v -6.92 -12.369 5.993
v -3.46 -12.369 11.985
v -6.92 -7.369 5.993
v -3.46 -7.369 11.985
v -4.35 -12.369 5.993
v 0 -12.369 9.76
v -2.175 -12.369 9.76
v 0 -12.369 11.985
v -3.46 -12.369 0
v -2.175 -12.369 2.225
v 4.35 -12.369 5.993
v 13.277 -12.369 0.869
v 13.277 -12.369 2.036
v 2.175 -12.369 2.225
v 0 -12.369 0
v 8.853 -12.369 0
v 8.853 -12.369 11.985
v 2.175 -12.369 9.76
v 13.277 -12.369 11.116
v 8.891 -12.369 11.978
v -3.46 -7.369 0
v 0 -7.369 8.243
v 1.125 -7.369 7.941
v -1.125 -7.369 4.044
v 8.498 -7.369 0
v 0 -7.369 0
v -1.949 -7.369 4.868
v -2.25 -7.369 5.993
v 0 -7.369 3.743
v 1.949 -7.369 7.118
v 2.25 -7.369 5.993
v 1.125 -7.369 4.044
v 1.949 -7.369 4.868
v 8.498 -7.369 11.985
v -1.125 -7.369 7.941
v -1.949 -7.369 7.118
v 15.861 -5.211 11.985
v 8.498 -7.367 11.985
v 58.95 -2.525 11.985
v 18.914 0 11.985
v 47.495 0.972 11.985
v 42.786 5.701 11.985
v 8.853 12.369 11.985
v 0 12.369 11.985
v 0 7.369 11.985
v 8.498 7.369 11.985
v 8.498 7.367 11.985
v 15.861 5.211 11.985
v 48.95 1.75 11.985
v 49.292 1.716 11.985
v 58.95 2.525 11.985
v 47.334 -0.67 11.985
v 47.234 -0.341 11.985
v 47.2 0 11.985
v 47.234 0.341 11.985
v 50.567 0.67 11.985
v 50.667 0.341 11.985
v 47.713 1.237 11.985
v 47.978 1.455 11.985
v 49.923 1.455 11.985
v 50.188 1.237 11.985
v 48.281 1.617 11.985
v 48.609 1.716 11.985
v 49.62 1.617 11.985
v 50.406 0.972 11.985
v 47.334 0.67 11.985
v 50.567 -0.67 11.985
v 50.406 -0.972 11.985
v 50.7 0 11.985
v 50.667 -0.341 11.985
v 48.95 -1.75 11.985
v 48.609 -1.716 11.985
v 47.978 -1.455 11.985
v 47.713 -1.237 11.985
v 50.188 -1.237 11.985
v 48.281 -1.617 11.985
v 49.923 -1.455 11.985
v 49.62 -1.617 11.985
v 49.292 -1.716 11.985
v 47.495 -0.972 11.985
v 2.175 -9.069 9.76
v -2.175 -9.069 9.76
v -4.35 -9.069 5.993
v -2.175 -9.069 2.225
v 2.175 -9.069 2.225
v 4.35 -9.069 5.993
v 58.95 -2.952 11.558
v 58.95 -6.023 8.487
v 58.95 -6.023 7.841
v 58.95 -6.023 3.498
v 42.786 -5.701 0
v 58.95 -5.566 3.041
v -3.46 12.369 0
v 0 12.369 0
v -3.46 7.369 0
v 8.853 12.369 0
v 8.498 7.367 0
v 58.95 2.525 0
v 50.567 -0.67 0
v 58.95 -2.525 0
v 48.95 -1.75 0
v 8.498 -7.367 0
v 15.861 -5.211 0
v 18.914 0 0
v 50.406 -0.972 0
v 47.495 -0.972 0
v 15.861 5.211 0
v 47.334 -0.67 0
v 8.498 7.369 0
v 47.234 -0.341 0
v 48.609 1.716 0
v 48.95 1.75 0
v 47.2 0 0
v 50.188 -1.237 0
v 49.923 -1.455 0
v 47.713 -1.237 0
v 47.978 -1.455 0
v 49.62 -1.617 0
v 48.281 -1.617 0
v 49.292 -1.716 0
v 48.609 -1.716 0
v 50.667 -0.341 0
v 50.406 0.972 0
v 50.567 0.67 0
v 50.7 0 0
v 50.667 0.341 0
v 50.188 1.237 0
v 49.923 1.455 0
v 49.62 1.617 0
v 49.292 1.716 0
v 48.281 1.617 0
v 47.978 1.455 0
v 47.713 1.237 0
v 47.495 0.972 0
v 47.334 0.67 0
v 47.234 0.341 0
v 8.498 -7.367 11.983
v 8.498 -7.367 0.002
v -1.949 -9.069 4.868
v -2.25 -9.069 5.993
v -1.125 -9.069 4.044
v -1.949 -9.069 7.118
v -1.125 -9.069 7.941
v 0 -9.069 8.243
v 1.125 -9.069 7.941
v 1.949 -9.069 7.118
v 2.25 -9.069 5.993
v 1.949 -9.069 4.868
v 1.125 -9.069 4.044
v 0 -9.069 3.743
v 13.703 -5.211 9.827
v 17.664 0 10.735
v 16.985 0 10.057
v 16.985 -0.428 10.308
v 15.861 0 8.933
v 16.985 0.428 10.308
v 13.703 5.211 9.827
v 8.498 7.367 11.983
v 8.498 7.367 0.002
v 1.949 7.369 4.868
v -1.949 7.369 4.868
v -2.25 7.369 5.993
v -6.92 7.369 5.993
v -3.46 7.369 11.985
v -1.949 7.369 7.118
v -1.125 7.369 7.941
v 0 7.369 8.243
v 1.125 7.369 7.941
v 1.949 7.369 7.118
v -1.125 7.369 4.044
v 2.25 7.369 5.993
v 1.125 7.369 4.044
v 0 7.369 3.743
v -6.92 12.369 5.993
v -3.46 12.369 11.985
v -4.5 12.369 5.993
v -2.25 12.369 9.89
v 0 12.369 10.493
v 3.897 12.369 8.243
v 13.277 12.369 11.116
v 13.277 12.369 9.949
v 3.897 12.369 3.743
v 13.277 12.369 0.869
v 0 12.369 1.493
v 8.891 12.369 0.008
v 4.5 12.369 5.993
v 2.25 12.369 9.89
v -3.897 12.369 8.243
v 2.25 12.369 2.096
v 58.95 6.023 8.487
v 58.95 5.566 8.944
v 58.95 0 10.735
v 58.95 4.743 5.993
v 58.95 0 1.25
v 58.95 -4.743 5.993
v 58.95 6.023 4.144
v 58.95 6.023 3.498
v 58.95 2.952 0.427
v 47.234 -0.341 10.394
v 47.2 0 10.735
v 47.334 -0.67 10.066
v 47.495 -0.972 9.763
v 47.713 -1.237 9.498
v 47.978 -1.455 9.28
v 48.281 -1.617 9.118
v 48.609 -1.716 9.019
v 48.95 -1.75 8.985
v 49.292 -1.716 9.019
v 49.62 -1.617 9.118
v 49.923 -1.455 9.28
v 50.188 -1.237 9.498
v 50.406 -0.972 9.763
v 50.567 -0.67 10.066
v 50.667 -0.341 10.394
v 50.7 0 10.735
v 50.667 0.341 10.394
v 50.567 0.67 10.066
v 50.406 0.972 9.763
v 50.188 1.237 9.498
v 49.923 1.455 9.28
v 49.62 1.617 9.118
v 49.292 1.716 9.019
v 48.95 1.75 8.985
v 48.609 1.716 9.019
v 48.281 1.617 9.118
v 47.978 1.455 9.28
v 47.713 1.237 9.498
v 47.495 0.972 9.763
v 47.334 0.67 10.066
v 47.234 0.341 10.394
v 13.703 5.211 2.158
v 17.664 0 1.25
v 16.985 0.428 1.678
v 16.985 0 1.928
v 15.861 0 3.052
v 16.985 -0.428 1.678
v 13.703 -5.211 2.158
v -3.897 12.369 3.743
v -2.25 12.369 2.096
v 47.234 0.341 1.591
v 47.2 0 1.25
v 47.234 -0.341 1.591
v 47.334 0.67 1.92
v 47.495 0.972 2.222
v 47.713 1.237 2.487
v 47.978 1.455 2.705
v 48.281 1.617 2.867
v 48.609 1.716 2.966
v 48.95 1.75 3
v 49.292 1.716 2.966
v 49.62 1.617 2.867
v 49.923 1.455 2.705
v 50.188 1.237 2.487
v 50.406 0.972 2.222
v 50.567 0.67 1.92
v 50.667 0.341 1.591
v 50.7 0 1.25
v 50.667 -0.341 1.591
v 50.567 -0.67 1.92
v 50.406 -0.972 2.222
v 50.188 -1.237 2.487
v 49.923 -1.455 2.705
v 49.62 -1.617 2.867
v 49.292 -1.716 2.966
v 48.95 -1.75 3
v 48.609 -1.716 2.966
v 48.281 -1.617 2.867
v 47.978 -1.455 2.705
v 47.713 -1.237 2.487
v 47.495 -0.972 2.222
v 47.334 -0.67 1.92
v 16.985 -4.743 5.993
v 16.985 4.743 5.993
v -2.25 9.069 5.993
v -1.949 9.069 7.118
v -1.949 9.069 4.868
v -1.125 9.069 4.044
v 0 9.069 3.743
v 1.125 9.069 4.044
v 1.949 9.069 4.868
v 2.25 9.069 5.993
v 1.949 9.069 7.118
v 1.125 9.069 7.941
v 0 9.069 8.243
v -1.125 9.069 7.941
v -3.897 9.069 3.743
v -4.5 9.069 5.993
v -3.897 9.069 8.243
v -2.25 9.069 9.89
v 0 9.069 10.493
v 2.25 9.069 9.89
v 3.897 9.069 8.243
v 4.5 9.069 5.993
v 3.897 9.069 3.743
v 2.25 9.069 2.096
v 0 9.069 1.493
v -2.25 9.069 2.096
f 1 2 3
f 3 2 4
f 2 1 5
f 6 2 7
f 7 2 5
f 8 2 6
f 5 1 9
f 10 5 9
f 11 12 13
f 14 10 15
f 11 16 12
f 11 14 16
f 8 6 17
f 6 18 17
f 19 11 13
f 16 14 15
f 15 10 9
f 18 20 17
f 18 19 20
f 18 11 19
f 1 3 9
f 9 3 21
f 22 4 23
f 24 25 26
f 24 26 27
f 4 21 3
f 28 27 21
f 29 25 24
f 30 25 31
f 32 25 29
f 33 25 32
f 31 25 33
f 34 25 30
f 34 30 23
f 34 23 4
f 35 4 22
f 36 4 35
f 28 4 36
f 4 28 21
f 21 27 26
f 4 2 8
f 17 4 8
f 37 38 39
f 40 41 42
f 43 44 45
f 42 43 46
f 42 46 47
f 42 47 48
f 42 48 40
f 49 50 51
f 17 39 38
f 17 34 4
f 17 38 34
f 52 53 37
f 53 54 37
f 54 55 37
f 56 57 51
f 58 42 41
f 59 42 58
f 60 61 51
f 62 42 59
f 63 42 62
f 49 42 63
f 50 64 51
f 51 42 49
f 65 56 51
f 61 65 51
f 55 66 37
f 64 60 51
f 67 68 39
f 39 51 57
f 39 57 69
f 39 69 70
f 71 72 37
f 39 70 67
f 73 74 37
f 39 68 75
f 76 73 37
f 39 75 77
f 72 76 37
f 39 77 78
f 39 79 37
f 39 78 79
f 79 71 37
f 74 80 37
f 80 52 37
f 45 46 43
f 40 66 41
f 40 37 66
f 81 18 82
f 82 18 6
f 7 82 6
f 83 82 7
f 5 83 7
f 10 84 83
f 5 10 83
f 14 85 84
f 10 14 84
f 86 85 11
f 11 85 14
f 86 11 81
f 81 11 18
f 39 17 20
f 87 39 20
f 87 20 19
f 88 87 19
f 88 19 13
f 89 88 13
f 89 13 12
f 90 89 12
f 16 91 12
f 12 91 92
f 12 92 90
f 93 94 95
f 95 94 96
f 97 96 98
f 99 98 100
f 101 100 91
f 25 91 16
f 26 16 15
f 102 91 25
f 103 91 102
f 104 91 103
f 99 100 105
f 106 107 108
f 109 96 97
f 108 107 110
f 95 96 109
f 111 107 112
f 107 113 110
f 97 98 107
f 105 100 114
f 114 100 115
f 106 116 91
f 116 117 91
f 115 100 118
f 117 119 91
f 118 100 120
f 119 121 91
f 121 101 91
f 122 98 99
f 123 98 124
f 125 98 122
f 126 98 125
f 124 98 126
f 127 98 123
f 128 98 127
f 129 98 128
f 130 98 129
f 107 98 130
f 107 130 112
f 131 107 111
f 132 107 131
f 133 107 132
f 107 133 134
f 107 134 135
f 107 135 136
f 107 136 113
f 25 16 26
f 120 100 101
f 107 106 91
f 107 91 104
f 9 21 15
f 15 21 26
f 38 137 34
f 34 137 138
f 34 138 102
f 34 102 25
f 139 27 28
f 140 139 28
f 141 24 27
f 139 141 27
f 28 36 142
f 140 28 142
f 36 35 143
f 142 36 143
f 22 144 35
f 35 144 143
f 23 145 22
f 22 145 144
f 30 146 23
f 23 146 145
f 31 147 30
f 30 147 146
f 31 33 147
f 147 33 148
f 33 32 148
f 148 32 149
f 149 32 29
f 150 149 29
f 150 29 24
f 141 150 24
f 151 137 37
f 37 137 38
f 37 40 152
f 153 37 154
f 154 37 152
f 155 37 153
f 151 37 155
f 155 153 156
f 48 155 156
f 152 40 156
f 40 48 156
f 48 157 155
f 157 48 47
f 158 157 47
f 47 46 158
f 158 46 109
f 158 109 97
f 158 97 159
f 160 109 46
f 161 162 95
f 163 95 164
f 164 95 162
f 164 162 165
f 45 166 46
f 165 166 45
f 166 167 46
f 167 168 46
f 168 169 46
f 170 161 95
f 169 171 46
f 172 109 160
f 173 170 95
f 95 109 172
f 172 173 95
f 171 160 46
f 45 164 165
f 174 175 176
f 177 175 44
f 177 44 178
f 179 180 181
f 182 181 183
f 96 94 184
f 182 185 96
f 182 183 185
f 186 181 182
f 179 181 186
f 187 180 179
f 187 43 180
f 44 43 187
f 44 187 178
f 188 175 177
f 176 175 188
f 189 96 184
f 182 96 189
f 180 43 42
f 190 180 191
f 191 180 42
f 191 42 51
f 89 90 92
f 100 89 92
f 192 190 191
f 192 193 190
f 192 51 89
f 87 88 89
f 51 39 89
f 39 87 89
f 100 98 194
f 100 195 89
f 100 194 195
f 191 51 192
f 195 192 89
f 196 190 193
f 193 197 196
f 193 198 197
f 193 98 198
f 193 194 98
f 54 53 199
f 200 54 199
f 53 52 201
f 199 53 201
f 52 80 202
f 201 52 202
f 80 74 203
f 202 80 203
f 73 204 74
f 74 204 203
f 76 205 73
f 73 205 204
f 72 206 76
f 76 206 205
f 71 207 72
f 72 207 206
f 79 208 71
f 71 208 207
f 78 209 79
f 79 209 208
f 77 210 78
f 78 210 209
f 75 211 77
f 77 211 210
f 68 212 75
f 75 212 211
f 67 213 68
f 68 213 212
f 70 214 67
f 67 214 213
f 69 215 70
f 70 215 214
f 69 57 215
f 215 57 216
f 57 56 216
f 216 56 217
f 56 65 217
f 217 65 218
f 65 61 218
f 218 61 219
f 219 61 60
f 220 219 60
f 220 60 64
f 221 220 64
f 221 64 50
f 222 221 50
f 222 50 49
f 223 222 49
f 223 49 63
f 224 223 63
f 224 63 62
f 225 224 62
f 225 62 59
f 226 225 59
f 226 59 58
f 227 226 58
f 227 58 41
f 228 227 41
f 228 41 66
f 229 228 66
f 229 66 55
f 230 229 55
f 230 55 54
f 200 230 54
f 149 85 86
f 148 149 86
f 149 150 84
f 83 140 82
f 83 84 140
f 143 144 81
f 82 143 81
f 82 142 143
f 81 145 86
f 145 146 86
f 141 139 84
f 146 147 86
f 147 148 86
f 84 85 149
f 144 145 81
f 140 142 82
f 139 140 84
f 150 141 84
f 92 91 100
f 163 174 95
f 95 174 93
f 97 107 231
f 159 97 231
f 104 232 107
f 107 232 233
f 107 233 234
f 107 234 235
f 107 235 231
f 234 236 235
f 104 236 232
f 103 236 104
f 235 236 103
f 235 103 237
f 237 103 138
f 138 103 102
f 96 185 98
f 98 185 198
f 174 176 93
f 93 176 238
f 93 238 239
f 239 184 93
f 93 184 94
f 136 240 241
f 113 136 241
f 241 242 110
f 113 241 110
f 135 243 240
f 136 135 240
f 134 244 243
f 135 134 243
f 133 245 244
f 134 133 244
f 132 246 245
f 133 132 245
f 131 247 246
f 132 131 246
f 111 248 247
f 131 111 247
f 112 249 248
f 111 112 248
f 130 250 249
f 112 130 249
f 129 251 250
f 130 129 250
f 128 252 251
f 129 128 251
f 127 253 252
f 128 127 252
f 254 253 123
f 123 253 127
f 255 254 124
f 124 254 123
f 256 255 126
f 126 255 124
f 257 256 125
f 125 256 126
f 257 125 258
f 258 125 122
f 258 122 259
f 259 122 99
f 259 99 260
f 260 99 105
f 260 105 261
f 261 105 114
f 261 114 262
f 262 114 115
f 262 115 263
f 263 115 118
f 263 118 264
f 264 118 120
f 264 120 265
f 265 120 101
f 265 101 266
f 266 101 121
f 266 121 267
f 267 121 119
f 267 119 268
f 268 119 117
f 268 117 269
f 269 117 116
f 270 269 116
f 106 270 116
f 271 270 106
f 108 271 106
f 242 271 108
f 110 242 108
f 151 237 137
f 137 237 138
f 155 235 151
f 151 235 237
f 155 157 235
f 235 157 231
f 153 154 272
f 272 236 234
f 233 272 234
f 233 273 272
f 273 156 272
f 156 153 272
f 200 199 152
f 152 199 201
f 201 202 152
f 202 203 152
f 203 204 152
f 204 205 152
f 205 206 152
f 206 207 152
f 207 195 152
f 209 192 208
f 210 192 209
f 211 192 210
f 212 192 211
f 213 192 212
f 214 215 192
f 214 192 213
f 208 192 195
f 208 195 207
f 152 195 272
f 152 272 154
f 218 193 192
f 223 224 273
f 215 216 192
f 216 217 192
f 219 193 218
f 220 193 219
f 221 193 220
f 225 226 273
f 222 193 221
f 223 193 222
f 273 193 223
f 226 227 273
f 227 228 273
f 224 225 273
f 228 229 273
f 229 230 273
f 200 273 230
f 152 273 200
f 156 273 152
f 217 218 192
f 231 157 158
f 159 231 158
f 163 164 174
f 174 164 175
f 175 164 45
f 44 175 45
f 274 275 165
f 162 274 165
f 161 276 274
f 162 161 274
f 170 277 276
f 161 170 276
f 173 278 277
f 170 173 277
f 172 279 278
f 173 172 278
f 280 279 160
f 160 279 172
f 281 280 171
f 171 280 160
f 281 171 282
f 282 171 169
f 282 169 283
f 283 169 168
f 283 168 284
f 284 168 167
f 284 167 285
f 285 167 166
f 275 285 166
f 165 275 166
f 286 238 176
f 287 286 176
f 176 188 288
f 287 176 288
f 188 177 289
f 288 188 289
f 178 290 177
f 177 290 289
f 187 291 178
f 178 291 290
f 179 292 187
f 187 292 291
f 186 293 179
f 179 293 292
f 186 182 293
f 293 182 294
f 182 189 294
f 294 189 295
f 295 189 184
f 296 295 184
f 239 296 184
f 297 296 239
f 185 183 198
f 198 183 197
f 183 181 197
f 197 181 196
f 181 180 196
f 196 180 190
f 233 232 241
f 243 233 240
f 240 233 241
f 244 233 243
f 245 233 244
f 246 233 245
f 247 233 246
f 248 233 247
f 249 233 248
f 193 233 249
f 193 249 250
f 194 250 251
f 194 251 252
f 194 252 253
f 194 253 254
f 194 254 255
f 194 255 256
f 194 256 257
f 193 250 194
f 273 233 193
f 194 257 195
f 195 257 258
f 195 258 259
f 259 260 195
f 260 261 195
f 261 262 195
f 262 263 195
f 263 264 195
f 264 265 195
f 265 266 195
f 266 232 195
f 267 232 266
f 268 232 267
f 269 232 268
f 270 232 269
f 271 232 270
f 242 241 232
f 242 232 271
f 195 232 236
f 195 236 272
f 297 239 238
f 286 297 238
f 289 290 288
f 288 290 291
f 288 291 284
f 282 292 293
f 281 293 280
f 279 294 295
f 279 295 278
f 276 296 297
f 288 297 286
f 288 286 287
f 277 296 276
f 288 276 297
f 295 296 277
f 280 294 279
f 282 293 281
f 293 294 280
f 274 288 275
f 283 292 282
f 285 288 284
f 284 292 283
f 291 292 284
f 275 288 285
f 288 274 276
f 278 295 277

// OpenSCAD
// file: joint.scad
include <configuration.scad>

//limits - it should fit in this box :-)
%translate([-jointOuter/2,-jointInner/2,0])
cube([jointOuter, jointInner, jointHeight]);

translate([0,0,-.1])
%cube([200,200,0.2], center=true);

module stumpy(rad = 6, length = 5) {
  rotate([0, 90, 0]) rotate([0, 0, 30]) intersection() {
    cylinder(r=rad, h=length, center=true, $fn=6);
    union(){
      for(i=[0:1]){
        mirror([0,0,i])
        translate([0,0,length/2-rad])
        sphere(r=rad+1, $fn=24);
      }
    }
  }
}

module joint() {
  translate([0, 0, jointHeight/2])
  difference() {
    union() {
      stumpy(jointHeight/2, jointOuter);
      rotate([0, 0, 90]) stumpy(jointHeight/2, jointInner);
    }
    rotate([90, 0, 0]) cylinder(r=boltRad, h=30, center=true, $fn=12);
    rotate([0, 90, 0]) cylinder(r=boltRad, h=30, center=true, $fn=12);
  }
}

joint();
// file: configuration.scad
rodSize  = 10;	//10 or 8; sets linear bearing size as well.
rodSeparation = 64;	//how far between rod centers
wall = 5;	//general wall thicknesses
boltSize = 4;	//3 for m3, 4 for m4
wingLength = rodSeparation;	//how long the wing supports are for the motor
				//and idler mounts.

//generic slop specs
rodSlop  = 1.0;	//how much bigger to make smooth rod holes
boltSlop = 0.5;	//how much bigger to make bolt holes
nutSlop  = 0.6;	//how much bigger to make nut holes
jointSlop = 1.0;	//how much space around the joint
			//the joint itself isn't slopped, the parts that join to it are.


//lm10uu specs
lm_dia = 20;
lm_height = 30;


//joint specs
tubeDia = 6;
jointHeight=boltSize*2+2;
jointInner=boltSize*2 / cos(30)+boltSize+boltSlop;  //small side of joint - clamped by the jaw
jointOuter=boltSize*2 / cos(30)+boltSize+boltSlop;  //large side of joint, clamped by carriage & platform
jointSeparation=rodSeparation; //separation between rod centers - used to align carriage & platform


//platform specs
platform_thickness = wall*1.15;
platform_hinge_offset = 21;

//motor/idler specs
idlerShaft = 4.5;
motorShaft = 12.5;
motorMin = 12.5;
motorMax = 16.5;

tabGap = 1;
tabWidth = 6;


m8Dia = 8+boltSlop;
m8Rad = m8Dia/2;
m8NutDia = 15+nutSlop;
m8NutRad = m8NutDia/2;

nutDia = 8.1+nutSlop;
nutRad = nutDia/2;
boltDia = 4+boltSlop;
boltRad = boltDia/2;
nutHeight = 3.3;

m3NutDia = 6.1+nutSlop;
m3NutRad = m3NutDia/2;
m3BoltDia = 3+boltSlop;
m3BoltRad = m3BoltDia/2;
// main file
include <configuration.scad>
use <joint.scad>

r=(tubeDia*sqrt(2)+rodSlop)/2;
h = r*2+wall/2;

translate([0,0,-.1])
%cube([200,200,0.2], center=true);

//limits - it should fit in this box :-)
%translate([-r,0,r+1])
rotate([0,90,0])
joint();

forkWidth = jointInner+jointSlop;
width = forkWidth+wall*2;
forkLength = forkWidth*4;
gap = h+wall;

e = 0.01;

module jaws() {
  translate([0, 0, h/2])
  difference() {
    union() {
      intersection () {
        rotate([90, 0, 0]) cylinder(r=h/2/cos(30), h=width, center=true, $fn=6);
        translate([-h/2+e, 0, 0]) cube([h, width, h], center=true);
      }
      intersection() {
        translate([forkLength/2, 0, 0]) cube([forkLength, width, h], center=true);
        translate([forkLength/2, 0, 0]) rotate([0, 90, 0]) rotate([0,0,22.5])
          cylinder(r1=width*cos(50)+e, r2=h/2, h=forkLength+7, center=true, $fn=8);
      }
    }
    cube([gap+e, forkWidth, h+1], center=true);
    translate([gap/2, 0, 0])
      cylinder(r=forkWidth/2, h=forkLength, center=true, $fn=8);
    translate([gap/2, 0, h/2]) rotate([0, 45, 0])
      cylinder(r=forkWidth/2, h=forkLength, center=true, $fn=8);
    translate([gap/2, 0, -h/2]) rotate([0, -45, 0])
      cylinder(r=forkWidth/2, h=forkLength, center=true, $fn=8);
    
    //bolt hole
    rotate([90, 0, 0]) cylinder(r=boltRad, h=width+2, center=true, $fn=12);
    rotate([90, 0, 0]) translate([0,0,width-nutHeight])
      cylinder(r=nutRad, h=width, center=true, $fn=6); //nut
    rotate([90, 0, 0]) translate([0,0,-width+nutHeight])
      cylinder(r=boltDia, h=width, center=true, $fn=12);//countersink bolt

    //rod
    translate([forkLength/2+gap, 0, 0]) rotate([0, 90, 0])
      cylinder(r=r, h=forkLength, center=true, $fn=4);

    //set screw/glue hole
    translate([forkLength-10,0,0]) rotate([0, 0, 0])
      cylinder(r=m3BoltRad, h=forkLength, center=true, $fn=32);
 
    *for(i=[-1,1]){
      translate([forkLength-10,0,i*h/2])
      rotate([0,45,0])
      cube([3,forkLength,3],center=true);

      //break up the base so it doesn't delaminate
      translate([gap+sqrt(2)*wall,0,i*h/2])
      rotate([0,45,0])
      cube([3,forkLength,3],center=true);
    }
  }
}

jaws();
